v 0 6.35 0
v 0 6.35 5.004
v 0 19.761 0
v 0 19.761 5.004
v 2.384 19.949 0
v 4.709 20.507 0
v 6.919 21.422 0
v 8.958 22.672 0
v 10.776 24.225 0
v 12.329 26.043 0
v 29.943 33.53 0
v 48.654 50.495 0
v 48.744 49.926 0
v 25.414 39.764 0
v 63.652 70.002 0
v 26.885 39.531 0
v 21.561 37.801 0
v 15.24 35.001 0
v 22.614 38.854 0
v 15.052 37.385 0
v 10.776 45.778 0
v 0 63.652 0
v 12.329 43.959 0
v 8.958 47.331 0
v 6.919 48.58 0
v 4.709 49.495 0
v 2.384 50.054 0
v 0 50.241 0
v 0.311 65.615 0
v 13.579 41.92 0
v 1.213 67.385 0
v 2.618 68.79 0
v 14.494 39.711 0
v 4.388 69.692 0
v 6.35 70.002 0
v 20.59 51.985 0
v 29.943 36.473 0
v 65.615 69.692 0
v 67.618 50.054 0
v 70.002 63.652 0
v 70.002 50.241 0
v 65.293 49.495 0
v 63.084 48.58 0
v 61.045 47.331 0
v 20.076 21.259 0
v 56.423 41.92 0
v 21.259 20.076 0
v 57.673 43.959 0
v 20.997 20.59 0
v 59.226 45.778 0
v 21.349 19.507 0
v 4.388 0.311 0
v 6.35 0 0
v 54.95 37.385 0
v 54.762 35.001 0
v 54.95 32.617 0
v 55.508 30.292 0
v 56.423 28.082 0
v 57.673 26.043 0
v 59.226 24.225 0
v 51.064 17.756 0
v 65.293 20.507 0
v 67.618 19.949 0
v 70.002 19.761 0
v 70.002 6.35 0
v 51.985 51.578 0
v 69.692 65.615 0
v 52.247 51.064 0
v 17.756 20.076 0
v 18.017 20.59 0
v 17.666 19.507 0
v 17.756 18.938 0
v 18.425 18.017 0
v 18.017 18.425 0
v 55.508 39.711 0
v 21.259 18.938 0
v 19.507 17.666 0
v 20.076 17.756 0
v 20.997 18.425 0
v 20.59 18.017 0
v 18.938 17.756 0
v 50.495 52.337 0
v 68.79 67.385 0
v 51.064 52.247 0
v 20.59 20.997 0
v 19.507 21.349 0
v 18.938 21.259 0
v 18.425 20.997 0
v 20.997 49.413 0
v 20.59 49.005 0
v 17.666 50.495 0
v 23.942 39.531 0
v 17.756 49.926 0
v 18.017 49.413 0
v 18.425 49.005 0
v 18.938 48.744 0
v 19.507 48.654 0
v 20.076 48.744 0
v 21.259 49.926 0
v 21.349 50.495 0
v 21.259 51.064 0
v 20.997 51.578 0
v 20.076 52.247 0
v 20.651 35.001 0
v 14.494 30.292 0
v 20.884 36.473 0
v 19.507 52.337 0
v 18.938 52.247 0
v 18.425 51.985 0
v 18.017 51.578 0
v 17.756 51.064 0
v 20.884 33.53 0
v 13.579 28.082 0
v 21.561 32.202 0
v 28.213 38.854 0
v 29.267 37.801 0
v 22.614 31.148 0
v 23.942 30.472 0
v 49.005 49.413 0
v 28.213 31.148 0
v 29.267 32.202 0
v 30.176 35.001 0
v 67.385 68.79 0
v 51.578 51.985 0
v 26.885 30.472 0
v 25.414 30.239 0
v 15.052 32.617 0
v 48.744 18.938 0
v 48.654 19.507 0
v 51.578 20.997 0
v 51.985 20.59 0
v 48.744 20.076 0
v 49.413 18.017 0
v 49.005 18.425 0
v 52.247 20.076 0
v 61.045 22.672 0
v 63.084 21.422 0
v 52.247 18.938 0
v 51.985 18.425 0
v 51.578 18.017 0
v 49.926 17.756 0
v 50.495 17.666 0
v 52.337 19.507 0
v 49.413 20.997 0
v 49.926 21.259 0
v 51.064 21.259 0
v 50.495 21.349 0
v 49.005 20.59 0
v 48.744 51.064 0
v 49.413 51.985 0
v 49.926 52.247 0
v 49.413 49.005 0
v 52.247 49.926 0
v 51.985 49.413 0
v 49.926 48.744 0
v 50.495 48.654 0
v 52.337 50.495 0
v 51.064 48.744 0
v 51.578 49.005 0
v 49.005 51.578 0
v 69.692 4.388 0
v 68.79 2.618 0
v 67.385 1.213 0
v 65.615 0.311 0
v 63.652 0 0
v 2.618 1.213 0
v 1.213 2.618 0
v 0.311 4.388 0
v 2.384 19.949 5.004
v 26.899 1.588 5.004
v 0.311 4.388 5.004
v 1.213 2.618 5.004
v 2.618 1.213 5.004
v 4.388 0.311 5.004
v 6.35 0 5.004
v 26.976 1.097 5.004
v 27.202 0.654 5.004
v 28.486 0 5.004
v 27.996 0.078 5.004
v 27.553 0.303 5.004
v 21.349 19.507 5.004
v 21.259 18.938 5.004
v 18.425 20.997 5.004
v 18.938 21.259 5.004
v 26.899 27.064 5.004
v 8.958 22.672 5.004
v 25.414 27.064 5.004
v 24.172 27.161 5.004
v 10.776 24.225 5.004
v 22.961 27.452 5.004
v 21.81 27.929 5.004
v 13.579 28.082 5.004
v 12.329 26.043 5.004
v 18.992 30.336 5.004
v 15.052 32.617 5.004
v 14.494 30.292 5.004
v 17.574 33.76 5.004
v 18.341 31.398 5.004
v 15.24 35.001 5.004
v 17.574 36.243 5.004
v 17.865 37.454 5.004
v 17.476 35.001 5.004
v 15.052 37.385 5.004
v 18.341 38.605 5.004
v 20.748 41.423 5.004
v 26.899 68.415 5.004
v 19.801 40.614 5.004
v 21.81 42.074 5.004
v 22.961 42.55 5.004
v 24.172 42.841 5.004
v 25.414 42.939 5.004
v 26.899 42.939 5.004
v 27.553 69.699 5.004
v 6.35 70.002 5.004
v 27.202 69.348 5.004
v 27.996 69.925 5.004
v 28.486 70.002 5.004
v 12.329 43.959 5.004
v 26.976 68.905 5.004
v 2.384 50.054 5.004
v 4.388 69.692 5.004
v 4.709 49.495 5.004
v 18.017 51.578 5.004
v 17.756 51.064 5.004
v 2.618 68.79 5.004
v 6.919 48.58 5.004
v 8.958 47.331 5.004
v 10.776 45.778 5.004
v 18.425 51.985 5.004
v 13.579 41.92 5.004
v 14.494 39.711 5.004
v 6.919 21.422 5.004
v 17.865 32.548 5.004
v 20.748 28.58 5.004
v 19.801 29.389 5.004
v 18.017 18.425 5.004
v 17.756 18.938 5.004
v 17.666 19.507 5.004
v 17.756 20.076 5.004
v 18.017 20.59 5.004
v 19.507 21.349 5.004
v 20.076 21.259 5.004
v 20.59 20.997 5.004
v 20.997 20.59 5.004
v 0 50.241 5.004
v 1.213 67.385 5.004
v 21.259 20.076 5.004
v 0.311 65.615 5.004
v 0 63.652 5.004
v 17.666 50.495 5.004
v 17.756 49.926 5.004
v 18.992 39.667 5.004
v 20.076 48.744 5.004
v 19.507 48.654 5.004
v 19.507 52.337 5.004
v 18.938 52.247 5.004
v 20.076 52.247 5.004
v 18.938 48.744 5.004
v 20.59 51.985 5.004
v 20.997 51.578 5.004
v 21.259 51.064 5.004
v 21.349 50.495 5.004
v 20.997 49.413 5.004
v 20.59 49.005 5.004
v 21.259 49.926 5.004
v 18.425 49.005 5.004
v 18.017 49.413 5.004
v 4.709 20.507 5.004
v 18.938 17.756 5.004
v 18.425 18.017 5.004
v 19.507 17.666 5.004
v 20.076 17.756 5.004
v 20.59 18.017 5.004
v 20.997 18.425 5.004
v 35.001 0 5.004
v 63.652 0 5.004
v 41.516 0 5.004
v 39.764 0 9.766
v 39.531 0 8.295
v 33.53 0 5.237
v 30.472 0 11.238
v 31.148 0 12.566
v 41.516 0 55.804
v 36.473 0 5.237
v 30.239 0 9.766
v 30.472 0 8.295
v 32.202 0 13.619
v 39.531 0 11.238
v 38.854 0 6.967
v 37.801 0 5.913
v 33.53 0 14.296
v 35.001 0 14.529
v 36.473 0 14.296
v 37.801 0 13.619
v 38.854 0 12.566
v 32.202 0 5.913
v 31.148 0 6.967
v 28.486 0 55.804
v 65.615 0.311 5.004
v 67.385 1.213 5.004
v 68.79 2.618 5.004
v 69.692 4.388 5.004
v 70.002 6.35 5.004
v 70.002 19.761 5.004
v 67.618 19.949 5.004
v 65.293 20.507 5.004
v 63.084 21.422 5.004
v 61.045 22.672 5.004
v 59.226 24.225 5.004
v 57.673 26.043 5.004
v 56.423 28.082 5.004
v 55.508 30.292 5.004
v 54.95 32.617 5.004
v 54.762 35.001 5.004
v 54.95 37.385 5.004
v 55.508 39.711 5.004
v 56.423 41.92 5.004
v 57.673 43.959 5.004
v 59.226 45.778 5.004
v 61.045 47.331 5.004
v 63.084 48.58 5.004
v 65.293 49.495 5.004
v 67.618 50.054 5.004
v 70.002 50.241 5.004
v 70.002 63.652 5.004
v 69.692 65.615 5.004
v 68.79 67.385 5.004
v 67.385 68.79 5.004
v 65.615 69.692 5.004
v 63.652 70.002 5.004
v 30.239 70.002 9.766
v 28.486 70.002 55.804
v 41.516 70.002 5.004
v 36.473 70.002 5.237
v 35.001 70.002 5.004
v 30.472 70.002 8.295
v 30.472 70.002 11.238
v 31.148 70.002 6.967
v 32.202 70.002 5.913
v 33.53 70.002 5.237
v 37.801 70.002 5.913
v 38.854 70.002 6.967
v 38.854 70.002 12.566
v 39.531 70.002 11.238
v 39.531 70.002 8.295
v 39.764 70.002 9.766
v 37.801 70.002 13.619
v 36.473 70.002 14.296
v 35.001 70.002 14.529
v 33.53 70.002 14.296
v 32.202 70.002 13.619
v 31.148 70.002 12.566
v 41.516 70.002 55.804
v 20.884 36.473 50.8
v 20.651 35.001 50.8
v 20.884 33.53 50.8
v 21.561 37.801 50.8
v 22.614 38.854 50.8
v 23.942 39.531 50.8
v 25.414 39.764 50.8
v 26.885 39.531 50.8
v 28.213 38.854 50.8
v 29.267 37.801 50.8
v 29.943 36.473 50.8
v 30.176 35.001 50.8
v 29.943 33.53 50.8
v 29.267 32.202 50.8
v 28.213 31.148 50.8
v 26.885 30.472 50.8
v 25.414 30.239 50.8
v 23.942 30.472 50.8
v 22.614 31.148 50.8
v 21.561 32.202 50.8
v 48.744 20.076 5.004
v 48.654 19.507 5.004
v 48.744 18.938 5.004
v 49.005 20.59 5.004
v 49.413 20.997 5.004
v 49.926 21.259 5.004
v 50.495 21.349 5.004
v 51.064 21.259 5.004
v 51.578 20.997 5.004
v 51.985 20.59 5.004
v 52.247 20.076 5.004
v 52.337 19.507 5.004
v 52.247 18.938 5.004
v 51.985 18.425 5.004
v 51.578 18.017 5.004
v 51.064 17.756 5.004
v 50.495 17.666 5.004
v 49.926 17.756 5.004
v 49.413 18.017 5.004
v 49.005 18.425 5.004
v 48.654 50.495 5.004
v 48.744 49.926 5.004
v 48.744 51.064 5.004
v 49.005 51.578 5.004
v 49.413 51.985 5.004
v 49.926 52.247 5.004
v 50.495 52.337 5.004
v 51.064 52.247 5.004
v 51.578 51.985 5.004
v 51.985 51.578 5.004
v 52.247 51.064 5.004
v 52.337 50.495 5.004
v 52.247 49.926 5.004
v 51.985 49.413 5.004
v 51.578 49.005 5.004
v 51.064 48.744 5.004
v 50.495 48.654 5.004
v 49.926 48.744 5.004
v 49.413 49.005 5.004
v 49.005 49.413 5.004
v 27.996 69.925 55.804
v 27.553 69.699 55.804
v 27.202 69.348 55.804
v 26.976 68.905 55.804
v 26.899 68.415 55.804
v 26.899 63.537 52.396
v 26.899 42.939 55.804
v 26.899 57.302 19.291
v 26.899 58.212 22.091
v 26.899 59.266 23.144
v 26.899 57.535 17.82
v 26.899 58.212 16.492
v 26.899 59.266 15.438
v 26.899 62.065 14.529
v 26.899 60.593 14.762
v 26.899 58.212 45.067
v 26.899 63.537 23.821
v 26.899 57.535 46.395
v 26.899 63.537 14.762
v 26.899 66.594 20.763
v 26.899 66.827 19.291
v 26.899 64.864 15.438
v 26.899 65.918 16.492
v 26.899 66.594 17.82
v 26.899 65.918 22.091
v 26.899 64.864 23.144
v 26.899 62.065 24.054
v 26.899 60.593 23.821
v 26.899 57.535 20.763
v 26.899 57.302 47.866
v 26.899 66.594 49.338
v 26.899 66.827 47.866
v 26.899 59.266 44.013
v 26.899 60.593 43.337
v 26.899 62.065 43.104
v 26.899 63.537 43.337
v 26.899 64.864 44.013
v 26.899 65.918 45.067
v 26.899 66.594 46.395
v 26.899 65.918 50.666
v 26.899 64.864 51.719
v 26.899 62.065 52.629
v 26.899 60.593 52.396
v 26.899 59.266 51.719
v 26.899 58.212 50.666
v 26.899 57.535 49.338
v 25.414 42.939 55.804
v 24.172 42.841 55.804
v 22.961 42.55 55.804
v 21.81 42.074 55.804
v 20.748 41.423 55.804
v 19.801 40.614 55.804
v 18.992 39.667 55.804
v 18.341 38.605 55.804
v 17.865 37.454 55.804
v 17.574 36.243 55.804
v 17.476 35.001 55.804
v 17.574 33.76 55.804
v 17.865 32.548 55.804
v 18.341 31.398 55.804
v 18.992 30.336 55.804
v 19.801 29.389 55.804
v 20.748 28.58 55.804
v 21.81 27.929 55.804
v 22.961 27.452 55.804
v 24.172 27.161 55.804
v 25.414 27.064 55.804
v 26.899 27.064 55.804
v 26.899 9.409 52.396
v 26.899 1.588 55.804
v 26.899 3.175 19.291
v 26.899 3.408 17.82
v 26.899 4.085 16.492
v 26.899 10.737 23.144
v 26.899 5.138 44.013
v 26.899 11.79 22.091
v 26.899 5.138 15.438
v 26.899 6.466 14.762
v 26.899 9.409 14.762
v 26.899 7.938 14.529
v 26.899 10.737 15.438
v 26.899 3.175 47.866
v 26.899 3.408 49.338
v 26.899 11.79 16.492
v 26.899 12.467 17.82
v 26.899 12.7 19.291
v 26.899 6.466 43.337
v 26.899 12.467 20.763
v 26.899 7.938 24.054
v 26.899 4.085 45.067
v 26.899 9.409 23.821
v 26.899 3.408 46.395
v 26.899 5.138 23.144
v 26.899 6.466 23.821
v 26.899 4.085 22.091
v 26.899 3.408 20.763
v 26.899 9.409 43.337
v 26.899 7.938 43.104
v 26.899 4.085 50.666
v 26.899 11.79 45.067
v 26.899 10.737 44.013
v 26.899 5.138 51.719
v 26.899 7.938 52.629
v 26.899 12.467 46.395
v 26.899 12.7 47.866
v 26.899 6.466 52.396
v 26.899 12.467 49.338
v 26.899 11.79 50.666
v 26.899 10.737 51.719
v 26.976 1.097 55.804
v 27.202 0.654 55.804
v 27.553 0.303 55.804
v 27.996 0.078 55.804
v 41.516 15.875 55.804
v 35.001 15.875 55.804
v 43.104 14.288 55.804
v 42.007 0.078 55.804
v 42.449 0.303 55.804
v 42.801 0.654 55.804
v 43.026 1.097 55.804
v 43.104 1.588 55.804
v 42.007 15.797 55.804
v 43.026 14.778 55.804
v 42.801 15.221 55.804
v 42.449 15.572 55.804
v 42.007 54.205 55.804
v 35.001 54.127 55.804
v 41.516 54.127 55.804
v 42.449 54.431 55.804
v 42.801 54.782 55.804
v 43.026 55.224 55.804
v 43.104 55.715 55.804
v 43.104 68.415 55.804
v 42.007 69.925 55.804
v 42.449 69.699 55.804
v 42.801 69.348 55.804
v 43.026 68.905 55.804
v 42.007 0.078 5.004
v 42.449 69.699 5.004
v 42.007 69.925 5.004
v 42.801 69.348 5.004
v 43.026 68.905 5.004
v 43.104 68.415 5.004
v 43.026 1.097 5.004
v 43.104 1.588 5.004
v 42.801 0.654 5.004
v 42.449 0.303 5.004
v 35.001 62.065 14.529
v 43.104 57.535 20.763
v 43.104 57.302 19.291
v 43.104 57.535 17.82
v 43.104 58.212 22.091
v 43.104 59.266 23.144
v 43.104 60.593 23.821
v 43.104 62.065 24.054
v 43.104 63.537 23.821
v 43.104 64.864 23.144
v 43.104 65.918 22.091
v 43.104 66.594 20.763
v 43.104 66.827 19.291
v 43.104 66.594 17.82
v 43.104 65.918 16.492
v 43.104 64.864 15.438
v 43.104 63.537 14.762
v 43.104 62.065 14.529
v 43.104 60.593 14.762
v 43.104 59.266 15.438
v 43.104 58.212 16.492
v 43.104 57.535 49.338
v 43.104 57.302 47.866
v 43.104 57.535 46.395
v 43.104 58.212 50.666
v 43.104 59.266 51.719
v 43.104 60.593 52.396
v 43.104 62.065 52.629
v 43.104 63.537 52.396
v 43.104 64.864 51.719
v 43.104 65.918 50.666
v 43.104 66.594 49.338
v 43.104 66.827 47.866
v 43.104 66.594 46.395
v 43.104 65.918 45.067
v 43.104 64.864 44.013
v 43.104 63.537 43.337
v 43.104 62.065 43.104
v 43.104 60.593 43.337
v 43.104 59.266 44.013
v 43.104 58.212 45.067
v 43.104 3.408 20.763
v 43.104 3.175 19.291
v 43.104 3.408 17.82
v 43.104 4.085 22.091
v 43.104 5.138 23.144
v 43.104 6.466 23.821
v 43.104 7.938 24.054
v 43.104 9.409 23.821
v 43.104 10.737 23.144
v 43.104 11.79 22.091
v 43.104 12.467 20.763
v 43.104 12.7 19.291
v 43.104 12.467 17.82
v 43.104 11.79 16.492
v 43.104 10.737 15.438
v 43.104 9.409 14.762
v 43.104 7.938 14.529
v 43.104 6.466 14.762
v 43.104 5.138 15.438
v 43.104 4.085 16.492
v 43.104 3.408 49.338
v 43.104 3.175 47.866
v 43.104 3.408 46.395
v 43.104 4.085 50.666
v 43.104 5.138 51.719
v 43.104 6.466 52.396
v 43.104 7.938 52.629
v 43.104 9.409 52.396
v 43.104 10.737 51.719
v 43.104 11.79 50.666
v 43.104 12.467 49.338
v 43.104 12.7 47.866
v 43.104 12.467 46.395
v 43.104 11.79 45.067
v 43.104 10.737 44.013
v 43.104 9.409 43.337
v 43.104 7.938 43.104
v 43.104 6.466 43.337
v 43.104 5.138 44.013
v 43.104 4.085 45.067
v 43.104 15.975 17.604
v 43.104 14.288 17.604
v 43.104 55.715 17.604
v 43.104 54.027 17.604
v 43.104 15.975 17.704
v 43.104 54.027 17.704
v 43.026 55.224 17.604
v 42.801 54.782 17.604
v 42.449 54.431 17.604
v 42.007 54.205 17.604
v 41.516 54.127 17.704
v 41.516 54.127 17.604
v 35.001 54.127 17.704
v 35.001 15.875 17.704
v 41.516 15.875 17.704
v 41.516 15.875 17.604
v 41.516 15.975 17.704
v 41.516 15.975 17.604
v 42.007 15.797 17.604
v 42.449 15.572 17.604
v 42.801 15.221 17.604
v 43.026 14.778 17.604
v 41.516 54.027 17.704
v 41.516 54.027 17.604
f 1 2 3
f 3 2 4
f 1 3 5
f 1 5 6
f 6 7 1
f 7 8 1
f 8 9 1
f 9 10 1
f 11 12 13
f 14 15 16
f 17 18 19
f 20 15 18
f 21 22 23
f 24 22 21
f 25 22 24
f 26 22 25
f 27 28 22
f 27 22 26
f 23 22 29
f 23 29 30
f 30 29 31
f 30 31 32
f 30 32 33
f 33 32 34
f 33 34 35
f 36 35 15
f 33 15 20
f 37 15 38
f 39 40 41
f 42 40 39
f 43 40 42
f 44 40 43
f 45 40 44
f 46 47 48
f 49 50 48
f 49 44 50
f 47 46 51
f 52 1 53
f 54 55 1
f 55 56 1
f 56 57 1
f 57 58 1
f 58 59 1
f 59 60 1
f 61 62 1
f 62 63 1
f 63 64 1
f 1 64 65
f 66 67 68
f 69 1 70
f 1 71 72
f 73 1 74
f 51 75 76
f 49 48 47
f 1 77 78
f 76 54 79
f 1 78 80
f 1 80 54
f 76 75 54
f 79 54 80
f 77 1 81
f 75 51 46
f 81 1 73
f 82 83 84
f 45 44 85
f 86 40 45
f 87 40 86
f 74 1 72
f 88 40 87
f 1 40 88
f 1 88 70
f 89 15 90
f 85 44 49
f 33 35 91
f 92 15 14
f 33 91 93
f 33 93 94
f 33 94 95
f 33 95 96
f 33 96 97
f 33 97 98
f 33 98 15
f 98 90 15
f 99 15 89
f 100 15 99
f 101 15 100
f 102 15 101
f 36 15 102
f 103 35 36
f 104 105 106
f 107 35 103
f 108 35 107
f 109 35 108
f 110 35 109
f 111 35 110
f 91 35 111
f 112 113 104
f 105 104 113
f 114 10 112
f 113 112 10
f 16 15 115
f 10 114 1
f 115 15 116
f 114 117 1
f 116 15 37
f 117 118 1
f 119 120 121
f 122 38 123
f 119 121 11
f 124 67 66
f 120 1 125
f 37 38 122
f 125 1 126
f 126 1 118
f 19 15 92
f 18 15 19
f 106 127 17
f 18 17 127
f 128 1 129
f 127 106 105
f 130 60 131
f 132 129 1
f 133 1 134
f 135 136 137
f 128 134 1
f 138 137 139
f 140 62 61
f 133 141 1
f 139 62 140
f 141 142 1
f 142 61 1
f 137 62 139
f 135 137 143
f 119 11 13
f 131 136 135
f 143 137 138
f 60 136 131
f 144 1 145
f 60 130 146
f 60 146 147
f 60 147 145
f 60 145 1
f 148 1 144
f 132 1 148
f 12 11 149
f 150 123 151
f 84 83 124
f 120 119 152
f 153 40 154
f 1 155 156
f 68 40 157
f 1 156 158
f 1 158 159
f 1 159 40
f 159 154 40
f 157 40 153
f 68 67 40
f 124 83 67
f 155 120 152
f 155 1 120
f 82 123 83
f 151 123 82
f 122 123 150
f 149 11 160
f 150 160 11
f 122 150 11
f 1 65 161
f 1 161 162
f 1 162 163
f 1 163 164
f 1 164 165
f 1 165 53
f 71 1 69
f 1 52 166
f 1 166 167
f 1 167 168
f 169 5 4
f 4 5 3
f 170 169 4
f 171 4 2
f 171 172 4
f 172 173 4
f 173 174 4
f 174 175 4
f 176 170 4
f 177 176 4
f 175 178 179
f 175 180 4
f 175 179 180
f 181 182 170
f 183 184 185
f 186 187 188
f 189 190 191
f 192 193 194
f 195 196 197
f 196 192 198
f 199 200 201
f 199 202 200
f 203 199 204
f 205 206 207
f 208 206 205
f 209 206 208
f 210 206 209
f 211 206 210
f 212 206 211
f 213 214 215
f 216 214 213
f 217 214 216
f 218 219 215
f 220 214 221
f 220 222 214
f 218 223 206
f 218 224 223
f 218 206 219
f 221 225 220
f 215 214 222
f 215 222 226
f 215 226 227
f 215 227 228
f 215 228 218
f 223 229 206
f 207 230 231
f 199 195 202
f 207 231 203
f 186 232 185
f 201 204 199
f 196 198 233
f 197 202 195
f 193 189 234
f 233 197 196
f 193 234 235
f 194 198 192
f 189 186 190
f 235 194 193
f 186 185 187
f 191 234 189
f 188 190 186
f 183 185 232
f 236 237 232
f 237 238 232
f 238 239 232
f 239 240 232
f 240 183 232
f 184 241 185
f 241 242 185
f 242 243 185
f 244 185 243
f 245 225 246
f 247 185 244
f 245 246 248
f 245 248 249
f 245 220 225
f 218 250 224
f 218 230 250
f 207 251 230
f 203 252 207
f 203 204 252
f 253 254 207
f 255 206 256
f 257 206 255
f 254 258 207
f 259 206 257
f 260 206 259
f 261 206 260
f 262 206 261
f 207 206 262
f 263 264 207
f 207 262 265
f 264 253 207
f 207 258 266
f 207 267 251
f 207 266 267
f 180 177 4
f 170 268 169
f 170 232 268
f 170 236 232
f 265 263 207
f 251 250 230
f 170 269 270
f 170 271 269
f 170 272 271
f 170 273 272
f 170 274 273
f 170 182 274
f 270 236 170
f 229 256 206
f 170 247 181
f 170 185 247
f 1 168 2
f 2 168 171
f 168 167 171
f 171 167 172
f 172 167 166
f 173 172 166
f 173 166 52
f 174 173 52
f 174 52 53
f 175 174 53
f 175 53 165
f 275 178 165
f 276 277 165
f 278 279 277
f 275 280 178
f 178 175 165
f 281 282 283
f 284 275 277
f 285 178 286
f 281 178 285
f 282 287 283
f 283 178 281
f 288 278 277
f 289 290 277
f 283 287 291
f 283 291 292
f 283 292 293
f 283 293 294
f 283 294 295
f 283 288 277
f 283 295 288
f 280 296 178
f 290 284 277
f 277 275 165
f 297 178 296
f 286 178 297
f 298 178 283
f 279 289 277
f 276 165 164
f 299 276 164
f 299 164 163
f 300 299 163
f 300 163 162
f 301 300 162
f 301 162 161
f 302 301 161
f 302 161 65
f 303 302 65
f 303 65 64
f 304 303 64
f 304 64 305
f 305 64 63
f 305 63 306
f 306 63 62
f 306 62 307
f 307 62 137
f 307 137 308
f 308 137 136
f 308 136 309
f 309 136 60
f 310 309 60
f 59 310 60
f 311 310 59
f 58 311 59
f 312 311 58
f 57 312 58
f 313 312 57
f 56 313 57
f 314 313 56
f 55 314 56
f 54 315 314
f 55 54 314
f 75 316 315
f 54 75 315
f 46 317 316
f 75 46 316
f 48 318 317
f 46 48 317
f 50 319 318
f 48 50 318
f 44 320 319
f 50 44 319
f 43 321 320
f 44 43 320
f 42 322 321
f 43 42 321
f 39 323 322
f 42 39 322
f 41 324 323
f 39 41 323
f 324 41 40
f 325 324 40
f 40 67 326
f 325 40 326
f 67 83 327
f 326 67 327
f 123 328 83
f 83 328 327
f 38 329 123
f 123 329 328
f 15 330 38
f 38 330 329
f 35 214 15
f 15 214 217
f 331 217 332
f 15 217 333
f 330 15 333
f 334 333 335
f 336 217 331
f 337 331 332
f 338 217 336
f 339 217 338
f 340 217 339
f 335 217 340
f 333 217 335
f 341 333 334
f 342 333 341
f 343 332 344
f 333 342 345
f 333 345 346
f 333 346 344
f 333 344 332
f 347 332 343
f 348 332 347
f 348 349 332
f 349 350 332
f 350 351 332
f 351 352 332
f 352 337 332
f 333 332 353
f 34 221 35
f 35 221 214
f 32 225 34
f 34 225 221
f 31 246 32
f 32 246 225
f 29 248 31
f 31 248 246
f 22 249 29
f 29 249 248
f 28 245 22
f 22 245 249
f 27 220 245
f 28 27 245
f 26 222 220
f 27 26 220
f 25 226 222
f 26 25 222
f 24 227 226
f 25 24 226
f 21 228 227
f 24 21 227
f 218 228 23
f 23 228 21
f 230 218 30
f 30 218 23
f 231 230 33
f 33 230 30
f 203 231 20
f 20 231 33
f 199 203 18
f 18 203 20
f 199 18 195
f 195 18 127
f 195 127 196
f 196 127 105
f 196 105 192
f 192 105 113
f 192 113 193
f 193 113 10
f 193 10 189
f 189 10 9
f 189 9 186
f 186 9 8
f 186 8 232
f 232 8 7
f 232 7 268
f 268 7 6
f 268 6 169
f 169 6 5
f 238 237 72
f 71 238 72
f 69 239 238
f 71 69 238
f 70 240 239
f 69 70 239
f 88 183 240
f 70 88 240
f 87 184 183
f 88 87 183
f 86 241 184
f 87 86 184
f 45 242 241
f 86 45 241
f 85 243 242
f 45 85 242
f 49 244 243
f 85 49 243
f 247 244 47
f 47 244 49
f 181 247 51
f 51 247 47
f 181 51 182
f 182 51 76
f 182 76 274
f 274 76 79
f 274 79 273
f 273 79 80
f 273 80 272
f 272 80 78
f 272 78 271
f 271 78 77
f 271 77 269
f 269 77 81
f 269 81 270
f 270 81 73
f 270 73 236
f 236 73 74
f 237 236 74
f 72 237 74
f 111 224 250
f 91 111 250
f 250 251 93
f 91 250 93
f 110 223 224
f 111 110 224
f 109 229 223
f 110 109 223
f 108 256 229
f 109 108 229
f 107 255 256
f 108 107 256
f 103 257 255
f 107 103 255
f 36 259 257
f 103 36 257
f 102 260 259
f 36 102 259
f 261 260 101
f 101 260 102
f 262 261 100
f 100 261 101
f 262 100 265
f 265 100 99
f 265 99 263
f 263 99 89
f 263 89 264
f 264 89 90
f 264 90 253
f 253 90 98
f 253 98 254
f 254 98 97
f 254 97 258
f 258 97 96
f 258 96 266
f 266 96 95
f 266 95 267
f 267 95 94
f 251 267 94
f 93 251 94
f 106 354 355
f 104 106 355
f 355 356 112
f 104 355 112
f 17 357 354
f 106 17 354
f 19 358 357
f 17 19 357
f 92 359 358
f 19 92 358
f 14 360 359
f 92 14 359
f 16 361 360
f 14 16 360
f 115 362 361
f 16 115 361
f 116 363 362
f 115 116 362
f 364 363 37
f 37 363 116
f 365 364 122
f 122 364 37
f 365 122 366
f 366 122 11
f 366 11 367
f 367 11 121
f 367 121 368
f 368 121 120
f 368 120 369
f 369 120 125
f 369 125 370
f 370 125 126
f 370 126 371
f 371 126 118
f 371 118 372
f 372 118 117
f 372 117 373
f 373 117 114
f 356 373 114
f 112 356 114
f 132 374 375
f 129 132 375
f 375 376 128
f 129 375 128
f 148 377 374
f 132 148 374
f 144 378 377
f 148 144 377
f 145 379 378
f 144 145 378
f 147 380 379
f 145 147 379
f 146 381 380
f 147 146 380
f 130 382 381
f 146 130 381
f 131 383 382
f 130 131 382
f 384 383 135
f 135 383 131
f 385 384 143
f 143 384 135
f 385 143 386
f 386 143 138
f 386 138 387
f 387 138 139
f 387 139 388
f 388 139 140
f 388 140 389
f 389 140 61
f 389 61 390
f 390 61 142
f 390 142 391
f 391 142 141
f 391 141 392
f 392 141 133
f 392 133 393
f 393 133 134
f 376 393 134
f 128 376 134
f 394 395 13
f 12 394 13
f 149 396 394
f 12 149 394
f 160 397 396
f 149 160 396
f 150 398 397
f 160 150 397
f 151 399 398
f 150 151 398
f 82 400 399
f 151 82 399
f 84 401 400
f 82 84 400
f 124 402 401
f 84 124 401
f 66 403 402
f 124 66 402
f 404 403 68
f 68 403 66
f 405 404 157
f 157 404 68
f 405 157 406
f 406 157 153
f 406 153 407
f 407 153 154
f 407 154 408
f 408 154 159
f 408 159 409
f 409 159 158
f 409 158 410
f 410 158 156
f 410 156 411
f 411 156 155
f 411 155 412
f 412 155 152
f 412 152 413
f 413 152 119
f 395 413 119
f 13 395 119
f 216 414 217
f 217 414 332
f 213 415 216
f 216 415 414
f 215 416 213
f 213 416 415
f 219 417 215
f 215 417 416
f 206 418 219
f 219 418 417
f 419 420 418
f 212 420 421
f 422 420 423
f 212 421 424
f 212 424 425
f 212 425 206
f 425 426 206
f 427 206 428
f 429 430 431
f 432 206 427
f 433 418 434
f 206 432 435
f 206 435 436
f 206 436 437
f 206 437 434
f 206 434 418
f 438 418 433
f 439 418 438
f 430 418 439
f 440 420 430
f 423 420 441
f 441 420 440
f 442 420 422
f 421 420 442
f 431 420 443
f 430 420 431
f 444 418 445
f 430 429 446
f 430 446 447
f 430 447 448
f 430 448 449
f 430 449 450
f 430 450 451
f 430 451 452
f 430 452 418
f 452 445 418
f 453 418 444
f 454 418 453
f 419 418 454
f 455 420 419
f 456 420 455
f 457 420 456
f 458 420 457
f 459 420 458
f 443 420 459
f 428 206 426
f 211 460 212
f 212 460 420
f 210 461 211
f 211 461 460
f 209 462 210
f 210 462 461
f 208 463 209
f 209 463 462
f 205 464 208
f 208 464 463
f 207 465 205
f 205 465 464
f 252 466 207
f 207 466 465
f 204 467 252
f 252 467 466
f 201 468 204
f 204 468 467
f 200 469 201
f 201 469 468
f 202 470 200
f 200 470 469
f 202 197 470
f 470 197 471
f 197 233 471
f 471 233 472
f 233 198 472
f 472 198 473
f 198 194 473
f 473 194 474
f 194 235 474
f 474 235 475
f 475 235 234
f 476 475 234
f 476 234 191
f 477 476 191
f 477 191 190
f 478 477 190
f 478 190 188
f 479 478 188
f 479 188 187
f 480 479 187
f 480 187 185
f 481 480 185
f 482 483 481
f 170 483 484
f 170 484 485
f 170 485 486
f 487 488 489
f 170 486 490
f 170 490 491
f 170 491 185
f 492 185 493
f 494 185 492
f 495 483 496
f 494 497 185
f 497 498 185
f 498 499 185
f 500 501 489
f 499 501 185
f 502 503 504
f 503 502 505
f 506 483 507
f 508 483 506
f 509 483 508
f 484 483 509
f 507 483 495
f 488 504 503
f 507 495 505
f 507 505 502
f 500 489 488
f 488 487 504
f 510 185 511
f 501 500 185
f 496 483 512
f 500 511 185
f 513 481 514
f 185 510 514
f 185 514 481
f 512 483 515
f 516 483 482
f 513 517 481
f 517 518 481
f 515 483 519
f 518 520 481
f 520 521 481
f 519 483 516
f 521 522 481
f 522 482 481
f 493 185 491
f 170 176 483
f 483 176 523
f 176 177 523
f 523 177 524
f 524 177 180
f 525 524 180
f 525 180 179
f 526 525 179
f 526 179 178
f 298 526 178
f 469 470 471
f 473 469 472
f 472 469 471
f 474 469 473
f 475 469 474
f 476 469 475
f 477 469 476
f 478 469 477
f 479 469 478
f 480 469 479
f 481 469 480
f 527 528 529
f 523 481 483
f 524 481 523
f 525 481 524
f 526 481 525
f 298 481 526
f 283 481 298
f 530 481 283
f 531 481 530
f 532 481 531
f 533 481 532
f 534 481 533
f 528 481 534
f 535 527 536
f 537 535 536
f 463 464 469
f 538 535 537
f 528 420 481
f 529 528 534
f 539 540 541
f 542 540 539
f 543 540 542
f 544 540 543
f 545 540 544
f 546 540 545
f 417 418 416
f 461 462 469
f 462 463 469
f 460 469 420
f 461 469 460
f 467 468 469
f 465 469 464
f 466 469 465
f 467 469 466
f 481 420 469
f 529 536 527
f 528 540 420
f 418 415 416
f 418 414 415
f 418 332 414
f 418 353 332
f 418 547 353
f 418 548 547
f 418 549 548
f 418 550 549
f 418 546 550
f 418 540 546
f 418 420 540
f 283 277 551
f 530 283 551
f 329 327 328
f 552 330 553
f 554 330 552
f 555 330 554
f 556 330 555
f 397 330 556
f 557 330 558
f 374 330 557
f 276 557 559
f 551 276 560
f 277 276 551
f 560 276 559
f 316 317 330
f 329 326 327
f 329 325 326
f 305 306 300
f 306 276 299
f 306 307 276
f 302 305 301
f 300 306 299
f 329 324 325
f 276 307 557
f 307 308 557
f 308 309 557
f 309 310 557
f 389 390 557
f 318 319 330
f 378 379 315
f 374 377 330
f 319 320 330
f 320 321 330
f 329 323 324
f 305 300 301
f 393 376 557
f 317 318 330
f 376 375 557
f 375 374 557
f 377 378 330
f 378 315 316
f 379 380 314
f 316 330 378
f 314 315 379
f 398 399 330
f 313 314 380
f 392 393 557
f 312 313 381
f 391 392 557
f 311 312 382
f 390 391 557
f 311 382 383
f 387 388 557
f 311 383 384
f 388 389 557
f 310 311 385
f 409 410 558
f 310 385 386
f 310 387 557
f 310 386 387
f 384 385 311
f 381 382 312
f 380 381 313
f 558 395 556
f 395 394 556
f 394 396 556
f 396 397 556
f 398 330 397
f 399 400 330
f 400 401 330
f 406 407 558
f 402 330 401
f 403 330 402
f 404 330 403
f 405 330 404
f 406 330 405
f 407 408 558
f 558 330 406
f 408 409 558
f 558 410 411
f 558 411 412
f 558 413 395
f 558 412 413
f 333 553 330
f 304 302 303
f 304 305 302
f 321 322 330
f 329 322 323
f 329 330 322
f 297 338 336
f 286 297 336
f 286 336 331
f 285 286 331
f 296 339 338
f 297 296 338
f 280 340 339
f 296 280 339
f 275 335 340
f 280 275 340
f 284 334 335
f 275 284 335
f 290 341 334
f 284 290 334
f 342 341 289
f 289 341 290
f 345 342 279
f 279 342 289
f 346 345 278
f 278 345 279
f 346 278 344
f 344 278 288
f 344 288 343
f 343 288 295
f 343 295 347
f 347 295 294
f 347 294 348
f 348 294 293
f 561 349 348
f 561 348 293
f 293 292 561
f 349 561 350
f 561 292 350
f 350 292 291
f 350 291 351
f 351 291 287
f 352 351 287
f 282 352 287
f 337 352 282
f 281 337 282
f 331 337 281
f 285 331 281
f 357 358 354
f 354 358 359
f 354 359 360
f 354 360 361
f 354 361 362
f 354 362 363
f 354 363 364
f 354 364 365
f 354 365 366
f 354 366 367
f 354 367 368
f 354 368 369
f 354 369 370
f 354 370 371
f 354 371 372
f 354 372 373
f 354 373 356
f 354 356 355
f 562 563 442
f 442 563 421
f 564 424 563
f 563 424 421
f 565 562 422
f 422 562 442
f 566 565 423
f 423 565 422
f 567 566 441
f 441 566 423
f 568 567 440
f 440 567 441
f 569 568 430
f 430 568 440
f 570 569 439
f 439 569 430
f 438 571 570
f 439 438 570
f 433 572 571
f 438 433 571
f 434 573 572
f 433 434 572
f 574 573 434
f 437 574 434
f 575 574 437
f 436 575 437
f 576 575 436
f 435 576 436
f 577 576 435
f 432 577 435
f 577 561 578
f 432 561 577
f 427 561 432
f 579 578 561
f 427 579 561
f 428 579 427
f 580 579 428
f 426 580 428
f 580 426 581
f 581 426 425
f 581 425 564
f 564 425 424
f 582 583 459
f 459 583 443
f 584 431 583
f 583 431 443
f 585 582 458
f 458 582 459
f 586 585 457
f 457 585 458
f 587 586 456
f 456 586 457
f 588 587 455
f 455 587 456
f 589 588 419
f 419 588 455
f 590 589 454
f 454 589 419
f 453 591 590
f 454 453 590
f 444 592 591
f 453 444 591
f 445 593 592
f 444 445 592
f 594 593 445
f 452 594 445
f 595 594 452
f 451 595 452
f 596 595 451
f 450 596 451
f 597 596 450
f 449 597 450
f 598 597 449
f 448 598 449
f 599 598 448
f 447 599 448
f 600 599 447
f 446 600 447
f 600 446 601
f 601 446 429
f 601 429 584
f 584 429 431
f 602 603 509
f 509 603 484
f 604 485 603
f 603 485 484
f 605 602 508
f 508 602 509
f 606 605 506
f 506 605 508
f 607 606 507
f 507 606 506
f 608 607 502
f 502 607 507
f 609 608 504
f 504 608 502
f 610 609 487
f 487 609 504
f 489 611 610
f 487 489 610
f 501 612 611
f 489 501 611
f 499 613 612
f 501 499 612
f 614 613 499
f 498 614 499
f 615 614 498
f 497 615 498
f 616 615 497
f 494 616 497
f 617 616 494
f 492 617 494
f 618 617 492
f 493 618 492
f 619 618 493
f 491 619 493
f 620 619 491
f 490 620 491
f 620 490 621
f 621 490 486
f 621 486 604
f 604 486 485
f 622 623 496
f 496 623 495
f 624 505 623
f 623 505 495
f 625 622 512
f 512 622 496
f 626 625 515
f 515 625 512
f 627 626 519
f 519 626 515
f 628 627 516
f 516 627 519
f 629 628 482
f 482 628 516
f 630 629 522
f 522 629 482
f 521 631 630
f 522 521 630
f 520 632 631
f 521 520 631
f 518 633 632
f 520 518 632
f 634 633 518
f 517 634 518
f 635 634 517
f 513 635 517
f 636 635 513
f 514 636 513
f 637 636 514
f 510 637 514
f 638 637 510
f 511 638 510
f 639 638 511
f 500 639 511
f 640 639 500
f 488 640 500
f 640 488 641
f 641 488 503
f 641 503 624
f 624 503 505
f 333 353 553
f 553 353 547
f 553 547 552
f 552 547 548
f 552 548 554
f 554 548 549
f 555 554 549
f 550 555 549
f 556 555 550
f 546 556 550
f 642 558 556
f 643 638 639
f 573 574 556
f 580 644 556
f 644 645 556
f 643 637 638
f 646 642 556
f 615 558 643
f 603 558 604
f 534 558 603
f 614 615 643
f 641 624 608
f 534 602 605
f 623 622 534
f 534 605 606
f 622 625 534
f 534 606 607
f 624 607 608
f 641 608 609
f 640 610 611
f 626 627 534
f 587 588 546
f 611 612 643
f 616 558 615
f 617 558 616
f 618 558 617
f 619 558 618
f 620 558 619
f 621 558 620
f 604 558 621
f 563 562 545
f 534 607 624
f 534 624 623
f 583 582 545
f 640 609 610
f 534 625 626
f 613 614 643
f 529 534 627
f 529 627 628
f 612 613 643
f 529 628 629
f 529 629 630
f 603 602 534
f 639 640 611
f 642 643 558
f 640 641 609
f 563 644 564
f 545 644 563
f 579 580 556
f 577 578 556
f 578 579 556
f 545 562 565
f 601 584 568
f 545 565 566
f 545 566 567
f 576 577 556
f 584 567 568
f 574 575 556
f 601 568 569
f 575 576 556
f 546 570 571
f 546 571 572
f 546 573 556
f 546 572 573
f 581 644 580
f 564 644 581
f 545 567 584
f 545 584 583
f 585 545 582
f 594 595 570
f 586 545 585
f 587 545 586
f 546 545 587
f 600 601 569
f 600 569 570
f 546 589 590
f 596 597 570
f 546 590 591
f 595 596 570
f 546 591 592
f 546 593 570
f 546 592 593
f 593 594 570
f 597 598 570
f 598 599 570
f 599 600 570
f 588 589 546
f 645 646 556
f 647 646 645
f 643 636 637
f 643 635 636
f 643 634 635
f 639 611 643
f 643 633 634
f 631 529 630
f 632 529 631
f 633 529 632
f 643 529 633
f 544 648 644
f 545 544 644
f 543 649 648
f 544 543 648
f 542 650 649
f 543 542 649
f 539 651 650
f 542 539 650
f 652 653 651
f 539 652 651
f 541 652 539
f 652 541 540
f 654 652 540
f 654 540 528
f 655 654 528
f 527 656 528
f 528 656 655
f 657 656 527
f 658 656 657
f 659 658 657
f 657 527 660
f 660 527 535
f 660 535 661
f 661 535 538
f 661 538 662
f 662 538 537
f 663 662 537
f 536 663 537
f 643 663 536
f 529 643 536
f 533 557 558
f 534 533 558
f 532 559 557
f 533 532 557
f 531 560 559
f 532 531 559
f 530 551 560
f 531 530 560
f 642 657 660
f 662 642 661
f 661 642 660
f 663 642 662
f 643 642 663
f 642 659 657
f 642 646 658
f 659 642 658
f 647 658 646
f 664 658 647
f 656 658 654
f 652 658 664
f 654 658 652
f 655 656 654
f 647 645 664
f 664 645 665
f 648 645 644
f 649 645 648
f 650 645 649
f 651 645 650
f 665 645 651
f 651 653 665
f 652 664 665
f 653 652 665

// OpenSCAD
inch = 25.4;

base_rounded_radius = 1/4*inch;
riser_rounded_radius = 1/16*inch;

base_thickness = 0.197*inch;
base_hw = 2.756*inch;
base_corner_radius = 0.1*inch;
base_side_cutout_radius = 0.6*inch;

riser_thickness = 0.638*inch;
riser_height = 2*inch;
riser_hole_offset = 1/8*inch;

mounthole_dia= 0.145*inch;
mounthole_hw = 1.220*inch;

rod_dia = 3/8*inch;
rod_holder_thickness = 1/8*inch;

rod_loc = [base_hw/2-rod_dia-1/16,base_hw/2,0];
cutout_width = base_hw-2*rod_dia-4*riser_hole_offset;
side_cutout_offset = [base_hw/2, 2*riser_hole_offset+rod_dia, base_thickness+rod_dia+riser_hole_offset];

difference()
{
	union()
	{
		base();
		riser();
		rodholder();
	}
	rod();
	transverse_rod();
}

module rounded_corner(h, rad)
{
	difference()
	{
		translate(v=[-0.1,-0.1,-0.1]) cube( size = [rad+0.1, rad+0.1, h+0.2] );
		translate(v=[rad, rad, -0.2]) cylinder( h=h+0.4, r=rad, $fn=20);
	}
}

module base()
{
	difference()
	{
		cube( size = [base_hw, base_hw, base_thickness]);
		translate( v=[0,base_hw/2,-0.1] )
			cylinder(h=base_thickness+0.2, r=base_side_cutout_radius, $fn = 40);
		translate( v=[base_hw,base_hw/2,-0.1] )
			cylinder(h=base_thickness+0.2, r=base_side_cutout_radius, $fn = 40);
		
		for(i=[0:1])
		{
			for(j=[0:1])
			{
				translate(v=[base_hw*i,base_hw*j,0])
				rotate(a=[0,0,-90*(3*i+j)+floor((3*i+j)/4)*180])
				rounded_corner(base_thickness, base_rounded_radius);
			}
		}
		for( i = [-1, 1])
		{
			for( j = [-1, 1])
			{
				translate( v=[base_hw/2-mounthole_hw*i/2,base_hw/2-mounthole_hw*j/2,-0.1] )
					cylinder(h=base_thickness+0.2, r=mounthole_dia/2, $fn=20);
			}
		}
	}
}

module rod()
{
	translate(v=rod_loc+[0,0,-0.1])
			cylinder(h=riser_height+0.1,r=rod_dia/2, $fn=20);
}

module transverse_rod()
{
	rotate(a = [-90,0,0], v=[0,0,0])
		translate(v=[base_hw/2,-rod_dia/2-base_thickness,-0.1])
			cylinder(h=2*base_hw, r=rod_dia/2, $fn=20);
}

module rodholder()
{
	union()
	{
		translate(v=rod_loc+[0,0,base_thickness])
			cylinder(h=riser_height, r=rod_dia/2+rod_holder_thickness, $fn=40);
		translate(v=rod_loc+[0, -rod_dia/2-rod_holder_thickness,base_thickness])
			cube(size = [rod_dia/2+rod_holder_thickness, rod_dia+2*rod_holder_thickness, riser_height]);
	}
}

module riser()
{
	difference()
	{
		translate(v=[base_hw/2-riser_thickness/2,0,base_thickness])
			cube(size = [riser_thickness, base_hw, riser_height]);

		//side cutout
		translate(v=side_cutout_offset)
				cube(size = [riser_thickness,cutout_width,riser_height]);

		for(i = [0,1])
		{
			//cutout convex rounded corner
			translate(v=[base_hw/2+riser_thickness/2,(1-2*i)*(riser_hole_offset*2+rod_dia)+base_hw*i,base_thickness+rod_dia+riser_hole_offset])
			rotate(a=[0,0,-180-90*i])
				rounded_corner(riser_height, riser_rounded_radius);
		}

		for(i = [0,1])
		{
			for(j = [0,1])
			{
				//outside rounded corners
				translate(v=[
						base_hw/2-riser_thickness*(1-2*i)/2,
						base_hw*j,
						base_thickness])
				rotate(a=[0,0,-90*(3*i+j)+floor((3*i+j)/4)*180])
					rounded_corner(riser_height, riser_rounded_radius);

				//Transverse rods
				translate(v=[0,
					riser_hole_offset + rod_dia/2 + j*(base_hw-rod_dia-2*riser_hole_offset),
					base_thickness+rod_dia*3/2 + i*(riser_height-2*rod_dia-riser_hole_offset)])
					rotate(a = [0,90,0], v=[0,0,0])
						cylinder(h=base_hw, r=rod_dia/2, $fn=20);
			}
		}
	}
}
